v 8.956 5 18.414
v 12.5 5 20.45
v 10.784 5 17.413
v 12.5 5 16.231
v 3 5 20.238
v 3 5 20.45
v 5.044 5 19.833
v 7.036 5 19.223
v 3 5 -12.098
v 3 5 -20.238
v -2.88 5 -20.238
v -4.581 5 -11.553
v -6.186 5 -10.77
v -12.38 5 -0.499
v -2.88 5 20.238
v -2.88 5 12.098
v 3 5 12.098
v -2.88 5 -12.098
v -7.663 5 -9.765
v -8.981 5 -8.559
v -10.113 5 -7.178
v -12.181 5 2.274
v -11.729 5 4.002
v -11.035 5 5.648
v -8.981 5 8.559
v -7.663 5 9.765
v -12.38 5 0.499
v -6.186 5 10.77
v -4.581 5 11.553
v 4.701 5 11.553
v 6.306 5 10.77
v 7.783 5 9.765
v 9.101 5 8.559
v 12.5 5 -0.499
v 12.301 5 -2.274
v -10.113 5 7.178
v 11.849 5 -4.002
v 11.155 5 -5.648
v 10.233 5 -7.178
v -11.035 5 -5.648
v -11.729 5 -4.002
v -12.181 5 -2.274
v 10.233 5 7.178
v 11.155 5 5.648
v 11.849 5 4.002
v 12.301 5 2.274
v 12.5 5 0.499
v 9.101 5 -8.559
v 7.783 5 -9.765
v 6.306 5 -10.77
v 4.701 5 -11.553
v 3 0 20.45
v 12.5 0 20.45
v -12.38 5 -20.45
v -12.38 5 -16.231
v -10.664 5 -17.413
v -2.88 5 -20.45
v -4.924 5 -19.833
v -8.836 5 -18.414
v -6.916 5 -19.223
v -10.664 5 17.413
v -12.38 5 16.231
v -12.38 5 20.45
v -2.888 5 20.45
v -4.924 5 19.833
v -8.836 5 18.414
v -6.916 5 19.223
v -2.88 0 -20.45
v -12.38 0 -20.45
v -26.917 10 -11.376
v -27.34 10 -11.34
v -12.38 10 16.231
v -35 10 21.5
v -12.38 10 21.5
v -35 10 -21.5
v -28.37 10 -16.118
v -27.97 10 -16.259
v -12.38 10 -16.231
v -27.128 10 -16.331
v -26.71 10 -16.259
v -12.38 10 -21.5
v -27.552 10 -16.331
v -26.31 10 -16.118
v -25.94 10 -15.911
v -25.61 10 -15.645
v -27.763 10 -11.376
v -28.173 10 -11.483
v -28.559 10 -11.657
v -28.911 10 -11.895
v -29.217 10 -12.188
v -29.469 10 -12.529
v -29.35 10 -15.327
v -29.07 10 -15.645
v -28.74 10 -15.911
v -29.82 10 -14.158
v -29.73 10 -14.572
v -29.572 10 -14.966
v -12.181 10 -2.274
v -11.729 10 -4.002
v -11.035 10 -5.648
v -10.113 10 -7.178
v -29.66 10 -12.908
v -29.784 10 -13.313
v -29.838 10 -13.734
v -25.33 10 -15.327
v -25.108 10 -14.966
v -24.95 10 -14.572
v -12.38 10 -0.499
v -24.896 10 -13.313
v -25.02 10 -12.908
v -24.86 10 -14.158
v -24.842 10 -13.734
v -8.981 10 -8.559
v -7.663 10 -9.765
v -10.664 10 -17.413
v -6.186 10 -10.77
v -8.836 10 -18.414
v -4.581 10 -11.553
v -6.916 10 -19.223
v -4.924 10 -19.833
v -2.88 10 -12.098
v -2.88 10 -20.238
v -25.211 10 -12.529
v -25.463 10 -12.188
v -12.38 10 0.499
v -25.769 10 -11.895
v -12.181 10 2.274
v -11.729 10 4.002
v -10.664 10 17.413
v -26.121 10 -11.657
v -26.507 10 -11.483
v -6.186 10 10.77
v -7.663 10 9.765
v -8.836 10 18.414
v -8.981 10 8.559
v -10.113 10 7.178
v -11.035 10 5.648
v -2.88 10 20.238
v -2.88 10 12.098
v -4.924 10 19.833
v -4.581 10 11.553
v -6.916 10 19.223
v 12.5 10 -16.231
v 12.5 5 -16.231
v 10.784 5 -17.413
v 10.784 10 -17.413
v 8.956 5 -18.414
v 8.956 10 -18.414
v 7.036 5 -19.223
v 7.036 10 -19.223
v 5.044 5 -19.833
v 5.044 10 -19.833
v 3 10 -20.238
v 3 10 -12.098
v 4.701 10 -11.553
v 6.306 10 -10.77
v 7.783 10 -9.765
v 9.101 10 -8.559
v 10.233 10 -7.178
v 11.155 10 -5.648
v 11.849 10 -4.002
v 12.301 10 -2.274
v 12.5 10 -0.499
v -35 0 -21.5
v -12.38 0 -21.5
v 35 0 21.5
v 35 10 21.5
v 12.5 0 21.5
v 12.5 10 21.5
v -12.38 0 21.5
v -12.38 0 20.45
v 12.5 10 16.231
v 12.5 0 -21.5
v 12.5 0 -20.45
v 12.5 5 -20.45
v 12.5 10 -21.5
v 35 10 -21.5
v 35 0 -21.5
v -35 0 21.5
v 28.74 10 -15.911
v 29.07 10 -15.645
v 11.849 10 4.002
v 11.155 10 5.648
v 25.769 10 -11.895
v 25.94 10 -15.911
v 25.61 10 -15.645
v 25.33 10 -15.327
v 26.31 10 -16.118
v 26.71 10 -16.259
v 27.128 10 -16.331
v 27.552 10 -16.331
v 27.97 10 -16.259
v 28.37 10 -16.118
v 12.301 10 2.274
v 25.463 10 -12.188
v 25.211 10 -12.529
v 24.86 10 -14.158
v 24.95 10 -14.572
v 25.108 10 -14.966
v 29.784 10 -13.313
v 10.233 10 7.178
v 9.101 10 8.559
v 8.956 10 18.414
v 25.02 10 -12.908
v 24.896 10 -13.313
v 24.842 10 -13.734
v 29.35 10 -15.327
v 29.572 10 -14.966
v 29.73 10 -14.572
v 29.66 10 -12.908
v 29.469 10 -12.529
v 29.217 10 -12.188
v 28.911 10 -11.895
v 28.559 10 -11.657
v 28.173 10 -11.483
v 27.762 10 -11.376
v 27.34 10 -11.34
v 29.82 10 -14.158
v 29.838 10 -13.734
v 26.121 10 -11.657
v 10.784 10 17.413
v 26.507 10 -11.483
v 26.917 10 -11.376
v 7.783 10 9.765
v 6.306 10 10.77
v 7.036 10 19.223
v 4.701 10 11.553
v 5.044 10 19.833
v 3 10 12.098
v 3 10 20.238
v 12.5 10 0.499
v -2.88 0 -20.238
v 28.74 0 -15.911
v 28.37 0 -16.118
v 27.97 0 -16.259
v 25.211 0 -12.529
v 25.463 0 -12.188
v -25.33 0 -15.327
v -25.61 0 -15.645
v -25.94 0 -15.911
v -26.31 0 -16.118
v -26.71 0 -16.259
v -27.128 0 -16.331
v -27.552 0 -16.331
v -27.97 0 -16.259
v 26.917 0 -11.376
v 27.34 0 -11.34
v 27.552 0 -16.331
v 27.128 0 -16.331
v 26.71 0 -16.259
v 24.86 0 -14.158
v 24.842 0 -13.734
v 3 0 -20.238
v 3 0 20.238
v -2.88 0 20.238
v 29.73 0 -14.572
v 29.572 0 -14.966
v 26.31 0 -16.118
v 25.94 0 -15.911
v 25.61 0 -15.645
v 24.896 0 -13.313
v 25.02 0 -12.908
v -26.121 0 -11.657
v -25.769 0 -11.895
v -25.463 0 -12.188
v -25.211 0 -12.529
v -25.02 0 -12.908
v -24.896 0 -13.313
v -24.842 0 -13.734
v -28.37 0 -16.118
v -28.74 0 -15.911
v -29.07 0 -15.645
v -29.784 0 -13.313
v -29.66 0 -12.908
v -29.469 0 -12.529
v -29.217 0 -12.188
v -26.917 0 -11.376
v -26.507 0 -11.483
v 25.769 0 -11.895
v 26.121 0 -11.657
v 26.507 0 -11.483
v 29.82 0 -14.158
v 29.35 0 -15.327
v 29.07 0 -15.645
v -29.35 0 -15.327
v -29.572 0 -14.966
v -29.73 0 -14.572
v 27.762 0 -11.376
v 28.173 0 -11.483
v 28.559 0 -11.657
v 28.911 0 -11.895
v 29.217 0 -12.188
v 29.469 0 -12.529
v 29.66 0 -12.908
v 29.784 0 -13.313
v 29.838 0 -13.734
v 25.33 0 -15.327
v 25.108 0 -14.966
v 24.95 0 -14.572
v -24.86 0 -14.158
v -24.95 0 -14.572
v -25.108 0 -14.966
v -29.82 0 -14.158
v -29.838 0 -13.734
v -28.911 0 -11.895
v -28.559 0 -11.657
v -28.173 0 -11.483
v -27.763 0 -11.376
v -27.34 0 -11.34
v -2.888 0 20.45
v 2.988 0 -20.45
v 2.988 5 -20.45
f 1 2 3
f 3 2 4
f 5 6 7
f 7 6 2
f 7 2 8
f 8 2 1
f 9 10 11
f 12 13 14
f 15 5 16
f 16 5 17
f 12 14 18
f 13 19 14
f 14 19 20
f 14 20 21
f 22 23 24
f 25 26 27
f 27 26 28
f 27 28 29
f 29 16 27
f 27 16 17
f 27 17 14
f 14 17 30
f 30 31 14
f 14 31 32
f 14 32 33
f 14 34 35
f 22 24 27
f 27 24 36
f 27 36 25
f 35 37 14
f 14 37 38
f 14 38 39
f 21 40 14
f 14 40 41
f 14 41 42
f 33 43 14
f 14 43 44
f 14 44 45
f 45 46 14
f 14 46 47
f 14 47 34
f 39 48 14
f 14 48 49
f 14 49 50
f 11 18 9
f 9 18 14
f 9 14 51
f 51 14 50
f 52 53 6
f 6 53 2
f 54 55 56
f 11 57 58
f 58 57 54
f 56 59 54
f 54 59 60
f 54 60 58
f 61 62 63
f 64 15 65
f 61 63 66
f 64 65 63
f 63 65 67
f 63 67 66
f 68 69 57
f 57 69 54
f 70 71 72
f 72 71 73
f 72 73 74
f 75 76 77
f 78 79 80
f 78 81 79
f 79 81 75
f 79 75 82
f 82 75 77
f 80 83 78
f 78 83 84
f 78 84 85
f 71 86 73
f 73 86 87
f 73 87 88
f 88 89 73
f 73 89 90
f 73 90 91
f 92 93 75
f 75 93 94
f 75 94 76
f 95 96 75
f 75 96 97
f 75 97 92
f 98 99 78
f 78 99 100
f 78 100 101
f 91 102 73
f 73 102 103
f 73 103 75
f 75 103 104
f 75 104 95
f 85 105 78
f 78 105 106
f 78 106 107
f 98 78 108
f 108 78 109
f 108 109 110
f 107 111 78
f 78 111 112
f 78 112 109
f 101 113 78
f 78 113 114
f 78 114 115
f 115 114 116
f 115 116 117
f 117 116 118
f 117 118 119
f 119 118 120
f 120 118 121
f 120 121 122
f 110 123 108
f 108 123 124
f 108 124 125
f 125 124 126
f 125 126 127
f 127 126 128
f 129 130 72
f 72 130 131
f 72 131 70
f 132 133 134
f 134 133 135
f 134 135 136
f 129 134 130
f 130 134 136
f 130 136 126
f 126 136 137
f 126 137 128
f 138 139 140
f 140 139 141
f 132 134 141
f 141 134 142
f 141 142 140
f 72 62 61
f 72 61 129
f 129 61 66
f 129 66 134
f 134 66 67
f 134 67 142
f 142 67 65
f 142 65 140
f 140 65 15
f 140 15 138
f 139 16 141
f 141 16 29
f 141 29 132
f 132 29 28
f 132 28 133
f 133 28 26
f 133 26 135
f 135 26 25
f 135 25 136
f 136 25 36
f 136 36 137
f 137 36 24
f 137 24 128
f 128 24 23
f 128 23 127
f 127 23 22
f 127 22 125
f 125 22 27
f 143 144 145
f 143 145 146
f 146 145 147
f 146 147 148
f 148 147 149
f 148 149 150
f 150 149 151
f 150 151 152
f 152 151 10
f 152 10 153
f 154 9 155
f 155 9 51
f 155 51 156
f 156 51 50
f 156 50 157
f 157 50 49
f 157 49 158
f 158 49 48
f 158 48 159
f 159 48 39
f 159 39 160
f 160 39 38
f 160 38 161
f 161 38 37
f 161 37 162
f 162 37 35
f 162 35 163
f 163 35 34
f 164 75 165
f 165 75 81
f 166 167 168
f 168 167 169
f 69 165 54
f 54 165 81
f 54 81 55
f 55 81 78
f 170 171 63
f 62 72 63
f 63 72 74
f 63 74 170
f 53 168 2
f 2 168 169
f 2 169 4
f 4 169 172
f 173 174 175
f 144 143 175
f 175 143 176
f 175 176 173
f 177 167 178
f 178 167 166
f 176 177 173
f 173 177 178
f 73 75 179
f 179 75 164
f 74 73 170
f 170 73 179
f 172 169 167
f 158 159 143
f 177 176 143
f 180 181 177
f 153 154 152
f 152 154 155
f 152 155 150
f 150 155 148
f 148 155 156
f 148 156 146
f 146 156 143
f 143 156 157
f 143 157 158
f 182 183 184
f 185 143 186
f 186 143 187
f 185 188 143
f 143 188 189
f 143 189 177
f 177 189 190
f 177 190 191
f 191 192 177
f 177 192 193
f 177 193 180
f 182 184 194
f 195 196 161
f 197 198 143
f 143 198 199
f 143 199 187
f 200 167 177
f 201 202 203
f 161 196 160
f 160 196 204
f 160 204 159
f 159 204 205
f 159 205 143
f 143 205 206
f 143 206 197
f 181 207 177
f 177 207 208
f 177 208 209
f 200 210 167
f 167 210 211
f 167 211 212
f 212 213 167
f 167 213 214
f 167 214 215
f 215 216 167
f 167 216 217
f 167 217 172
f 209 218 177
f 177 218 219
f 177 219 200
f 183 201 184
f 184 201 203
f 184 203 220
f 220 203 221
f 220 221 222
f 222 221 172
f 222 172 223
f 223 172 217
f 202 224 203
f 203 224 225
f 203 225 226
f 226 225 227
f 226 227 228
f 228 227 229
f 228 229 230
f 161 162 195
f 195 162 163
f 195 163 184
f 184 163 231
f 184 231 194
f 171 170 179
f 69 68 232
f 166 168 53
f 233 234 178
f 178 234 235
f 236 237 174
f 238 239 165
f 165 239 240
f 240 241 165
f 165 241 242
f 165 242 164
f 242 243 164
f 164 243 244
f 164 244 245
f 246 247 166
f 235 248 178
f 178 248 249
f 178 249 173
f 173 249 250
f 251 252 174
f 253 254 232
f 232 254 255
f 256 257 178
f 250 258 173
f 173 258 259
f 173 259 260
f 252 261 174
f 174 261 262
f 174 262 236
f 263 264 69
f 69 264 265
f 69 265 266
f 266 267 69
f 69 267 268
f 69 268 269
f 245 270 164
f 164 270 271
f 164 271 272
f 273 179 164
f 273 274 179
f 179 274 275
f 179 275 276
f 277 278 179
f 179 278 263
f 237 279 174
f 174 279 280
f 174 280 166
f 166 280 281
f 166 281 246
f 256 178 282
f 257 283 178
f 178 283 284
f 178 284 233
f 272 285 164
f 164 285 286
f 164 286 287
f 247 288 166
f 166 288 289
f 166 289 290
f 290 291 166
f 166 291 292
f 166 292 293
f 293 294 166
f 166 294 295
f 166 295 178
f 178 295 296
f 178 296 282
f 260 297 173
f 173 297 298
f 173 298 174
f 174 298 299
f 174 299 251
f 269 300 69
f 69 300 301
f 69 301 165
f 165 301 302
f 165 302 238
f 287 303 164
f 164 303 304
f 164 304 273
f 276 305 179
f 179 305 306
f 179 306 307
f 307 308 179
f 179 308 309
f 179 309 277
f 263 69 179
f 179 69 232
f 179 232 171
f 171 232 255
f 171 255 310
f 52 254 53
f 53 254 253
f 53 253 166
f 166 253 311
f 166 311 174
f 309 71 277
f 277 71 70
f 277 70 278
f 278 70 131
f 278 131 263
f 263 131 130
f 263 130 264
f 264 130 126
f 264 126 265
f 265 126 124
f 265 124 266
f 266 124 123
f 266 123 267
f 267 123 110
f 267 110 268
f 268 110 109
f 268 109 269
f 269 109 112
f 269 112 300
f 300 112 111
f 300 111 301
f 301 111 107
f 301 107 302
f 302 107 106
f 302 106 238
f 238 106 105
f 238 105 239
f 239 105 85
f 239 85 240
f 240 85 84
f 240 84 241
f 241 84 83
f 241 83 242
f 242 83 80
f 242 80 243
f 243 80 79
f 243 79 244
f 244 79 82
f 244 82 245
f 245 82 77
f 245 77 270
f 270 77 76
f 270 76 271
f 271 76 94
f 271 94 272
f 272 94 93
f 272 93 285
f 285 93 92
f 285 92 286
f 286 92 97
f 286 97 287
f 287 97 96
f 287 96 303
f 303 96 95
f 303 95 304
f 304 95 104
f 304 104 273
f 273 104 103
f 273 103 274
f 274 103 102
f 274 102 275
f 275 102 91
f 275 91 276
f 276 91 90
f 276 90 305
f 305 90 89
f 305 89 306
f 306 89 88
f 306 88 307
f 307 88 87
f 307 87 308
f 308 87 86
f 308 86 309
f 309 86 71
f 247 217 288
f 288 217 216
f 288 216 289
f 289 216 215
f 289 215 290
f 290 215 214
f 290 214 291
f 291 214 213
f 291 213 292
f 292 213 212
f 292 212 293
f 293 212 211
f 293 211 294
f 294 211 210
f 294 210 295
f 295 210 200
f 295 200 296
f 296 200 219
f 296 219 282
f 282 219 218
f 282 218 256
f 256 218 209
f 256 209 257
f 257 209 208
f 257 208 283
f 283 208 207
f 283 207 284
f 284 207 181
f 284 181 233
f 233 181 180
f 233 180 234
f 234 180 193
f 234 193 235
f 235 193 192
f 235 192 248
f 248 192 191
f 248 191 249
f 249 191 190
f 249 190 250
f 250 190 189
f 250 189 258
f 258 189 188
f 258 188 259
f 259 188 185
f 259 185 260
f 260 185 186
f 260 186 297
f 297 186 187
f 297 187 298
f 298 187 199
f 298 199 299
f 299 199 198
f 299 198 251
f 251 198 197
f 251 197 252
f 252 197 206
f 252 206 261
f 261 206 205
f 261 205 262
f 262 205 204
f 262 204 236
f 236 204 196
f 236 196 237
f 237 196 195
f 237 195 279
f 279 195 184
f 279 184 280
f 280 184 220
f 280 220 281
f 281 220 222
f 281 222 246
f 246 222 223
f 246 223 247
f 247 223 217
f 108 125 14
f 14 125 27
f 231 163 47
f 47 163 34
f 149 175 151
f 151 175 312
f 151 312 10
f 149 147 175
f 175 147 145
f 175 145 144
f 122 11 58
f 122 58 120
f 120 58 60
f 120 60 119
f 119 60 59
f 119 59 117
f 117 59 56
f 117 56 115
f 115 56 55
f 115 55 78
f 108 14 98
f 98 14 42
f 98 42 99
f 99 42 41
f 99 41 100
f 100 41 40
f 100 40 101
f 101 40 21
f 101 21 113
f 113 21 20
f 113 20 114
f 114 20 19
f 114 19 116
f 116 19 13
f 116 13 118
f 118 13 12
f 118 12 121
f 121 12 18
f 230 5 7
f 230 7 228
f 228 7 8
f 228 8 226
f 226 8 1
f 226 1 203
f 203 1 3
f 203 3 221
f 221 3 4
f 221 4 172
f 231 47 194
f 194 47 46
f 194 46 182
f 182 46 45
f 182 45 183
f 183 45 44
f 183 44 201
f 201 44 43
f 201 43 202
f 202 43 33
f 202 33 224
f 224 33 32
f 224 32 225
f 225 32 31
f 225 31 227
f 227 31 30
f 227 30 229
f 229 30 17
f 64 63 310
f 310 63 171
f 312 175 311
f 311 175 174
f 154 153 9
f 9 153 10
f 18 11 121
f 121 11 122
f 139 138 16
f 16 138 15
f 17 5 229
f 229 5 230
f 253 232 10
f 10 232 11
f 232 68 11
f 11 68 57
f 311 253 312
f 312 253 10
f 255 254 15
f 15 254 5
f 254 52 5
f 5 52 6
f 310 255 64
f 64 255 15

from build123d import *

# Parameters (mm, degrees)
SKETCH_1_W           = 70
SKETCH_1_H           = 43
EXTRUDE_1_DEPTH      = 10
SKETCH_4_R           = 2.5
CUT_EXTRUDE_1_DEPTH  = 10
SKETCH_5_R           = 2.5
CUT_EXTRUDE_2_DEPTH  = 10
SKETCH_8_W           = 24.88
SKETCH_8_H           = 5
CUT_EXTRUDE_4_DEPTH  = 57.338264084
SKETCH_11_R          = 20.45
SKETCH_11_R_2        = 12.45
EXTRUDE_1_2_DEPTH    = 5
CUT_EXTRUDE_6_DEPTH  = 5
CUT_EXTRUDE_7_DEPTH  = 5
SKETCH_16_W          = 5.88
SKETCH_16_H          = 11
CUT_EXTRUDE_8_DEPTH  = 5
SKETCH_17_W          = 5.88
SKETCH_17_H          = 8.352111755
CUT_EXTRUDE_9_DEPTH  = 5
CUT_EXTRUDE_10_DEPTH = 5
CUT_EXTRUDE_11_DEPTH = 5


with BuildPart() as part:
    # 草圖1 → Extrude 1 (new body)
    with BuildSketch(Plane(origin=(0, 0, 0), x_dir=(1, 0, 0), z_dir=(0, 1, 0))):
        Rectangle(SKETCH_1_W, SKETCH_1_H)
    extrude(amount=EXTRUDE_1_DEPTH)

    # 草圖4 → 除料-伸長1 (cut)
    with BuildSketch(Plane(origin=(0, 10, 0), x_dir=(1, 0, 0), z_dir=(0, 1, 0))):
        with Locations(Location((-27.34, 13.84, 0), (0, 0, 270))):
            Circle(SKETCH_4_R)
    extrude(amount=-CUT_EXTRUDE_1_DEPTH, mode=Mode.SUBTRACT)

    # 草圖5 → 除料-伸長2 (cut)
    with BuildSketch(Plane(origin=(0, 10, 0), x_dir=(1, 0, 0), z_dir=(0, 1, 0))):
        with Locations(Location((27.34, 13.84, 0), (0, 0, 270))):
            Circle(SKETCH_5_R)
    extrude(amount=-CUT_EXTRUDE_2_DEPTH, mode=Mode.SUBTRACT)

    # 草圖8 → 除料-伸長4 (cut, through all)
    with BuildSketch(Plane.XY.offset(21.5)):
        with Locations((0.06, 7.5)):
            Rectangle(SKETCH_8_W, SKETCH_8_H)
    extrude(amount=-CUT_EXTRUDE_4_DEPTH, mode=Mode.SUBTRACT)

    # 草圖11 → Extrude 1 2 (add)
    with BuildSketch(Plane(origin=(0, 5, 0), x_dir=(1, 0, 0), z_dir=(0, 1, 0))):
        with Locations((0.06, 0)):
            Circle(SKETCH_11_R)
        with Locations((0.06, 0)):
            Circle(SKETCH_11_R_2, mode=Mode.SUBTRACT)
    extrude(amount=EXTRUDE_1_2_DEPTH)

    # 草圖14 → 除料-伸長6 (cut)
    with BuildSketch(Plane(origin=(0, 5, 0), x_dir=(1, 0, 0), z_dir=(0, 1, 0))):
        Polygon((0.06, -20.45), (12.5, -20.45), (12.5, -21.5), (-12.38, -21.5), (-12.38, -20.45), align=None)
    extrude(amount=-CUT_EXTRUDE_6_DEPTH, mode=Mode.SUBTRACT)

    # 草圖15 → 除料-伸長7 (cut)
    with BuildSketch(Plane(origin=(0, 5, 0), x_dir=(1, 0, 0), z_dir=(0, 1, 0))):
        Polygon((0.06, 20.45), (12.5, 20.45), (12.5, 21.5), (-12.38, 21.5), (-12.38, 20.45), align=None)
    extrude(amount=-CUT_EXTRUDE_7_DEPTH, mode=Mode.SUBTRACT)

    # 草圖16 → 除料-伸長8 (cut)
    with BuildSketch(Plane(origin=(0, 10, 0), x_dir=(1, 0, 0), z_dir=(0, 1, 0))):
        with Locations((0.06, 17.597888245)):
            Rectangle(SKETCH_16_W, SKETCH_16_H)
    extrude(amount=-CUT_EXTRUDE_8_DEPTH, mode=Mode.SUBTRACT)

    # 草圖17 → 除料-伸長9 (cut)
    with BuildSketch(Plane(origin=(0, 10, 0), x_dir=(1, 0, 0), z_dir=(0, 1, 0))):
        with Locations((0.06, -16.273944123)):
            Rectangle(SKETCH_17_W, SKETCH_17_H)
    extrude(amount=-CUT_EXTRUDE_9_DEPTH, mode=Mode.SUBTRACT)

    # 草圖19 → 除料-伸長10 (cut)
    with BuildSketch(Plane(origin=(0, 5, 0), x_dir=(1, 0, 0), z_dir=(0, 1, 0))):
        Polygon((-2.88, 20.237561612), (-2.88, 20.45), (2.98755849, 20.45), (3, 20.237561612), align=None)
    extrude(amount=-CUT_EXTRUDE_10_DEPTH, mode=Mode.SUBTRACT)

    # 草圖20 → 除料-伸長11 (cut)
    with BuildSketch(Plane(origin=(0, 5, 0), x_dir=(1, 0, 0), z_dir=(0, 1, 0))):
        Polygon((3, -20.237561612), (3, -20.45), (-2.887827835, -20.45), (-2.88, -20.237561612), align=None)
    extrude(amount=-CUT_EXTRUDE_11_DEPTH, mode=Mode.SUBTRACT)


solid = part.part
